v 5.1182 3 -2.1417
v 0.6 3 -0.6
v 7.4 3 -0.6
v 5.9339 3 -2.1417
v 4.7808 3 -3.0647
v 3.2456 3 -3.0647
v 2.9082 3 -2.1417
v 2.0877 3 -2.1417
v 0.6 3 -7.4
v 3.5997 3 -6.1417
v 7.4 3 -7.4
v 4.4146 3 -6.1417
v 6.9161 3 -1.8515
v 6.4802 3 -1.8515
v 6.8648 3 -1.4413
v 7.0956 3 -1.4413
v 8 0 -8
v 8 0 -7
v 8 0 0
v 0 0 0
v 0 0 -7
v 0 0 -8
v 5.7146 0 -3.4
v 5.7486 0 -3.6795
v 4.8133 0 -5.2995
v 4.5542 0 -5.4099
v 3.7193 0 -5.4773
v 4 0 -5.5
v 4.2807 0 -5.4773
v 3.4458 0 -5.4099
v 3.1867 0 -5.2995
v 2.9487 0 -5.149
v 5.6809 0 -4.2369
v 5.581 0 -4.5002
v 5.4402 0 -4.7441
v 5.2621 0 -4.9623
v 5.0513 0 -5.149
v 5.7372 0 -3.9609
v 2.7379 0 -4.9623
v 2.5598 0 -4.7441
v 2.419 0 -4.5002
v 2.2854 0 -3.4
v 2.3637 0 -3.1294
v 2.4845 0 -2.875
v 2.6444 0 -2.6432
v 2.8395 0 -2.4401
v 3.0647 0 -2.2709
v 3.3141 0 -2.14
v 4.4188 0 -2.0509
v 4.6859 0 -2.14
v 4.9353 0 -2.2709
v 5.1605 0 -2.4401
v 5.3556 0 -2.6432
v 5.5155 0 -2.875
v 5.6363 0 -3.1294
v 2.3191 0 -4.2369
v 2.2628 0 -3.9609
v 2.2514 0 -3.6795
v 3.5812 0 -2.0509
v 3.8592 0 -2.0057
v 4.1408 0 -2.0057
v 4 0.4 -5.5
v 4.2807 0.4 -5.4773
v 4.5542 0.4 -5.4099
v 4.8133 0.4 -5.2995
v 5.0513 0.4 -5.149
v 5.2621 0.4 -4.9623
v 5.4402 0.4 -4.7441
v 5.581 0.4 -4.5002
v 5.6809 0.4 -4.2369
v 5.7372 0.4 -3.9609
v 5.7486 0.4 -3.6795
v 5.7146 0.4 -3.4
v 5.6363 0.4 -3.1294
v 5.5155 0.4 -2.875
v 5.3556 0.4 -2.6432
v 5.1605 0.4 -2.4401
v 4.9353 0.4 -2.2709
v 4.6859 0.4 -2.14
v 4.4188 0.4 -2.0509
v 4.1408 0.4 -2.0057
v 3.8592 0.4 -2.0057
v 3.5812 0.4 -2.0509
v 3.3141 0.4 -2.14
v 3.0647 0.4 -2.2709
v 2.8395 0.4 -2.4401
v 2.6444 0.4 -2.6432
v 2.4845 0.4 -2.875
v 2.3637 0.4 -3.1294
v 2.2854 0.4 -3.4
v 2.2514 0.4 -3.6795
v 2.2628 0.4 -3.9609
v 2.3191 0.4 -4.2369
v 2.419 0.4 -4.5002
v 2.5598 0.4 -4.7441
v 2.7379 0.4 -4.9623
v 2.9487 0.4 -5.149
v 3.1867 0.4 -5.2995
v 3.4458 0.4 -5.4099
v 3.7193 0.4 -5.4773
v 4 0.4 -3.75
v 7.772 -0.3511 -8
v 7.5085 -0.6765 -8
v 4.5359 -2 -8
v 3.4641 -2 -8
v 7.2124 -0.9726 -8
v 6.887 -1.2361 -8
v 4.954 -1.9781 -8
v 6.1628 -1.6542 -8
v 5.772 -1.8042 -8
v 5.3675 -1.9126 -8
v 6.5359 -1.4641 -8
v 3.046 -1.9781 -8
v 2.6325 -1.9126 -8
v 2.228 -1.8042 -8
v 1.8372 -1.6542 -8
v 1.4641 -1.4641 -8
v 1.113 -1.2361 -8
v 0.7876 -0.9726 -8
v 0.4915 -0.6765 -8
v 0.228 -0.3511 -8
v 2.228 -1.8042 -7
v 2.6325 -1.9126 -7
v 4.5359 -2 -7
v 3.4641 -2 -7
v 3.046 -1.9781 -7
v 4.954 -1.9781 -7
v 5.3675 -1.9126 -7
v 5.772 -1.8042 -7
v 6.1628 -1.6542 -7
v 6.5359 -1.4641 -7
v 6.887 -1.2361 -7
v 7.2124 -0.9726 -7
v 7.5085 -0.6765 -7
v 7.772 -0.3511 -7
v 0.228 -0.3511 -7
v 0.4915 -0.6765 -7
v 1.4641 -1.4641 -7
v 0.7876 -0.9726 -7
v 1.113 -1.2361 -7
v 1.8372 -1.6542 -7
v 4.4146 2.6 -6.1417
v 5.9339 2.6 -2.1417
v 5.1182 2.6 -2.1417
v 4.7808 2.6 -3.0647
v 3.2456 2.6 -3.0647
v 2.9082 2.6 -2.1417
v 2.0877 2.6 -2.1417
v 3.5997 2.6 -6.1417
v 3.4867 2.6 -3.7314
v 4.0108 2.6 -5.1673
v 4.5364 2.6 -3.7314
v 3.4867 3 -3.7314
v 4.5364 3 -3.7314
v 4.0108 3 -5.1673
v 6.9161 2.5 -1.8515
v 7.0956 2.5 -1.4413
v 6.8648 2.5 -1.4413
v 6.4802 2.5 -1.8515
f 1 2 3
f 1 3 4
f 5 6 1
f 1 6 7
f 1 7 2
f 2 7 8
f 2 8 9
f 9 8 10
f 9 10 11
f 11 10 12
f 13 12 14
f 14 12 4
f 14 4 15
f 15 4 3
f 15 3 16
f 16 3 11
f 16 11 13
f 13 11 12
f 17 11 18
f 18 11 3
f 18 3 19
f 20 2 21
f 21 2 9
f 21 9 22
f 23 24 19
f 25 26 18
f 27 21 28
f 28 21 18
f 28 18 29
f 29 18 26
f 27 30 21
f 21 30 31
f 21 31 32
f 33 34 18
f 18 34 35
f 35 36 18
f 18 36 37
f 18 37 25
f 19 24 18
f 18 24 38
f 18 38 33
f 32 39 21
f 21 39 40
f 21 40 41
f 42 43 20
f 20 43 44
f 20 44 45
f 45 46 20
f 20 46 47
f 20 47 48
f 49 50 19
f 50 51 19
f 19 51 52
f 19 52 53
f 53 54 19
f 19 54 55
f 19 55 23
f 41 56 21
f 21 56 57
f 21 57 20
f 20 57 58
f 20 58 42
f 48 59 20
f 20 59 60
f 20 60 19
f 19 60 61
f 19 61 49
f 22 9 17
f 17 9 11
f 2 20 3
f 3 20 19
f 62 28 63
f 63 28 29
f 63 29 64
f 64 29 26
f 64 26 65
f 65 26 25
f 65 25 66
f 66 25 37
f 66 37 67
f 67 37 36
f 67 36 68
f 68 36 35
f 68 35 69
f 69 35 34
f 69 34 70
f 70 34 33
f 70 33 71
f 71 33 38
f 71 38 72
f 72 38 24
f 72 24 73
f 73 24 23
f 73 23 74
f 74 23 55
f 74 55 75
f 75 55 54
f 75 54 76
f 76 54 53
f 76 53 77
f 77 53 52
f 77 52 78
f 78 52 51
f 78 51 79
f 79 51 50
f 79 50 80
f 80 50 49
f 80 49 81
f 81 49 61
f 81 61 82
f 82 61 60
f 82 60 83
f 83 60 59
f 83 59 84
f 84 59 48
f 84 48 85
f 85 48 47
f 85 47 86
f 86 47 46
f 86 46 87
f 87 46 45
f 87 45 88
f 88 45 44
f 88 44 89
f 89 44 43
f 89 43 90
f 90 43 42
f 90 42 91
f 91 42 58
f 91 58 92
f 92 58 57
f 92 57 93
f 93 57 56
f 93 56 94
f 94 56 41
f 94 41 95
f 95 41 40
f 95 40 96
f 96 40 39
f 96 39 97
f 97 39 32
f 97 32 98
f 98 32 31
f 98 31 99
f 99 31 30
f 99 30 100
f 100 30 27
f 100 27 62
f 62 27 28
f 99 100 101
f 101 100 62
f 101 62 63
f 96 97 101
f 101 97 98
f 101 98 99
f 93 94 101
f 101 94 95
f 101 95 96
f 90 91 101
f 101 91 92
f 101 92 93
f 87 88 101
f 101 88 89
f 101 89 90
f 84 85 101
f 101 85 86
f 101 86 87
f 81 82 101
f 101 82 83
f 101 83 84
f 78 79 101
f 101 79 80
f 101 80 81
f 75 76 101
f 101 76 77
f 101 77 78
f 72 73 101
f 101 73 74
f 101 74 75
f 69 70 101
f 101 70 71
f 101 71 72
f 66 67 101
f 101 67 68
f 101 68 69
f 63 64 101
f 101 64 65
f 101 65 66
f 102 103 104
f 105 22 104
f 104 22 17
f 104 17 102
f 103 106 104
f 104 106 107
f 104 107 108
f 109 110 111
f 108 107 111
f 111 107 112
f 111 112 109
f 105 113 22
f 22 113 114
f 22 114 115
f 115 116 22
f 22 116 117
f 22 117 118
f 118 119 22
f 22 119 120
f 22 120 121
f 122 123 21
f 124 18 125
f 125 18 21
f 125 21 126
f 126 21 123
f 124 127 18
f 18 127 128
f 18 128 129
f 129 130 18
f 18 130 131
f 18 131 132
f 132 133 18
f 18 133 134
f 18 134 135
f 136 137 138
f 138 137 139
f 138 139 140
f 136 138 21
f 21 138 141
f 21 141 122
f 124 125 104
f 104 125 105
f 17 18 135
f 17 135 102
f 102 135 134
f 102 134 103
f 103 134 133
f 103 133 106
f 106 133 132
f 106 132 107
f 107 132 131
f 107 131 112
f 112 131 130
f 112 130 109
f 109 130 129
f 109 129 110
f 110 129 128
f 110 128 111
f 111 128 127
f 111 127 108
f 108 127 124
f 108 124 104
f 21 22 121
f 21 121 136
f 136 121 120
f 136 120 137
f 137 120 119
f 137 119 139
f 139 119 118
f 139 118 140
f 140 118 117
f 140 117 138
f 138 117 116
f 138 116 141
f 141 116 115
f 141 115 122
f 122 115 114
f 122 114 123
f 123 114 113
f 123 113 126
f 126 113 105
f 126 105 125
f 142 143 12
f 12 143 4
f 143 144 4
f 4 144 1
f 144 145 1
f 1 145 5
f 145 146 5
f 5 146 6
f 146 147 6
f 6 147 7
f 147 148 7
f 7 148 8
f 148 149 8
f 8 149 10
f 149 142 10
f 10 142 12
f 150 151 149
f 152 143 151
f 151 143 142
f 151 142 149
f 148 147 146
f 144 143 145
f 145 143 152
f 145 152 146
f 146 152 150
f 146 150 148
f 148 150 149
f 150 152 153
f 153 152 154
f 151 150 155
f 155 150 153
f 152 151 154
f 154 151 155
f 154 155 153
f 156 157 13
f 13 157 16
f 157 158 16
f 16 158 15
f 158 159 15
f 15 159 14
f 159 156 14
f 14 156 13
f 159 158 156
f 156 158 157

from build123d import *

# Parameters (mm, degrees)
SKETCH1_W               = 8
SKETCH1_H               = 8
BOSS_EXTRUDE1_DEPTH     = 3
CUT_EXTRUDE1_DEPTH      = 12.704699911
CUT_EXTRUDE1_DEPTH_BACK = 12.704699911
CUT_EXTRUDE2_DEPTH      = 11
SKETCH4_R               = 1.75
CUT_EXTRUDE3_DEPTH      = 0.4
SKETCH5_W               = 8
SKETCH5_H               = 1
BOSS_EXTRUDE2_DEPTH     = 2
FILLET1_R               = 4
CUT_EXTRUDE4_DEPTH      = 0.4
CUT_EXTRUDE5_DEPTH      = 0.5


with BuildPart() as part:
    # Sketch1 → Boss-Extrude1 (new body)
    with BuildSketch(Plane(origin=(0, 0, 0), x_dir=(1, 0, 0), z_dir=(0, 1, 0))):
        with Locations((4, 4)):
            Rectangle(SKETCH1_W, SKETCH1_H)
    extrude(amount=BOSS_EXTRUDE1_DEPTH)

    # Sketch2 → Cut-Extrude1 (cut, two sides: drawn at the far end of the back side and taken through both)
    with BuildSketch(Plane.XY.offset(-CUT_EXTRUDE1_DEPTH_BACK)):
        Polygon((0, 0), (0.6, 3), (0, 3), align=None)
        Polygon((8, 0), (7.4, 3), (8, 3), align=None)
    extrude(amount=CUT_EXTRUDE1_DEPTH + CUT_EXTRUDE1_DEPTH_BACK, mode=Mode.SUBTRACT)

    # Sketch3 → Cut-Extrude2 (cut)
    with BuildSketch(Plane(origin=(0, 0, 0), x_dir=(0, 0, -1), z_dir=(1, 0, 0))):
        Polygon((0, 0), (0.6, 3), (0, 3), align=None)
        Polygon((8, 3), (7.4, 3), (8, 0), align=None)
    extrude(amount=CUT_EXTRUDE2_DEPTH, mode=Mode.SUBTRACT)

    # Sketch4 → Cut-Extrude3 (cut)
    with BuildSketch(Plane.XZ):
        with Locations(Location((4, -3.75, 0), (0, 0, 270))):
            Circle(SKETCH4_R)
    extrude(amount=-CUT_EXTRUDE3_DEPTH, mode=Mode.SUBTRACT)

    # Sketch5 → Boss-Extrude2 (add)
    with BuildSketch(Plane.XZ):
        with Locations((4, -7.5)):
            Rectangle(SKETCH5_W, SKETCH5_H)
    extrude(amount=BOSS_EXTRUDE2_DEPTH)

    # Fillet1
    # the kernel refuses this fillet: 4 mm, written as the material it takes off along each edge
    with BuildSketch(Plane(origin=(8, -2, -16.660254038), x_dir=(0, 1, 0), z_dir=(0, 0, 1)), Plane(origin=(0, -2, 1.660254038), x_dir=(0, 1, 0), z_dir=(0, 0, -1))) as fillet1_piece_1:
        with BuildLine():
            CenterArc((4, 3.464101615), FILLET1_R, 180, 60)
            Line((0, 3.464101615), (-0.08, 3.464101615))
            Line((-0.08, 3.464101615), (-0.08, 0))
            Line((-0.08, 0), (0, -0.08))
            ThreePointArc((0, -0.08), (1, -0.08), (1.96, -0.069282032))
            Line((1.96, -0.069282032), (2, 0))
        make_face()
    extrude(amount=18.320508076, mode=Mode.SUBTRACT)

    # Sketch6 → Cut-Extrude4 (cut)
    with BuildSketch(Plane(origin=(0, 3, 0), x_dir=(1, 0, 0), z_dir=(0, 1, 0))):
        Polygon((5.933857302, 2.141652068), (5.118152174, 2.141652068), (4.780812431, 3.064728992), (3.24555602, 3.064728992), (2.908216277, 2.141652068), (2.087703456, 2.141652068), (3.599722687, 6.141652068), (4.414626533, 6.141652068), align=None)
        Polygon((4.536421405, 3.731395658), (4.010780379, 5.167293094), (3.486741918, 3.731395658), align=None, mode=Mode.SUBTRACT)
    extrude(amount=-CUT_EXTRUDE4_DEPTH, mode=Mode.SUBTRACT)

    # Sketch7 → Cut-Extrude5 (cut)
    with BuildSketch(Plane(origin=(0, 3, 0), x_dir=(1, 0, 0), z_dir=(0, 1, 0))):
        Polygon((7.095591712, 1.44126633), (6.864822481, 1.44126633), (6.480207097, 1.85152274), (6.916104533, 1.85152274), align=None)
    extrude(amount=-CUT_EXTRUDE5_DEPTH, mode=Mode.SUBTRACT)


solid = part.part
